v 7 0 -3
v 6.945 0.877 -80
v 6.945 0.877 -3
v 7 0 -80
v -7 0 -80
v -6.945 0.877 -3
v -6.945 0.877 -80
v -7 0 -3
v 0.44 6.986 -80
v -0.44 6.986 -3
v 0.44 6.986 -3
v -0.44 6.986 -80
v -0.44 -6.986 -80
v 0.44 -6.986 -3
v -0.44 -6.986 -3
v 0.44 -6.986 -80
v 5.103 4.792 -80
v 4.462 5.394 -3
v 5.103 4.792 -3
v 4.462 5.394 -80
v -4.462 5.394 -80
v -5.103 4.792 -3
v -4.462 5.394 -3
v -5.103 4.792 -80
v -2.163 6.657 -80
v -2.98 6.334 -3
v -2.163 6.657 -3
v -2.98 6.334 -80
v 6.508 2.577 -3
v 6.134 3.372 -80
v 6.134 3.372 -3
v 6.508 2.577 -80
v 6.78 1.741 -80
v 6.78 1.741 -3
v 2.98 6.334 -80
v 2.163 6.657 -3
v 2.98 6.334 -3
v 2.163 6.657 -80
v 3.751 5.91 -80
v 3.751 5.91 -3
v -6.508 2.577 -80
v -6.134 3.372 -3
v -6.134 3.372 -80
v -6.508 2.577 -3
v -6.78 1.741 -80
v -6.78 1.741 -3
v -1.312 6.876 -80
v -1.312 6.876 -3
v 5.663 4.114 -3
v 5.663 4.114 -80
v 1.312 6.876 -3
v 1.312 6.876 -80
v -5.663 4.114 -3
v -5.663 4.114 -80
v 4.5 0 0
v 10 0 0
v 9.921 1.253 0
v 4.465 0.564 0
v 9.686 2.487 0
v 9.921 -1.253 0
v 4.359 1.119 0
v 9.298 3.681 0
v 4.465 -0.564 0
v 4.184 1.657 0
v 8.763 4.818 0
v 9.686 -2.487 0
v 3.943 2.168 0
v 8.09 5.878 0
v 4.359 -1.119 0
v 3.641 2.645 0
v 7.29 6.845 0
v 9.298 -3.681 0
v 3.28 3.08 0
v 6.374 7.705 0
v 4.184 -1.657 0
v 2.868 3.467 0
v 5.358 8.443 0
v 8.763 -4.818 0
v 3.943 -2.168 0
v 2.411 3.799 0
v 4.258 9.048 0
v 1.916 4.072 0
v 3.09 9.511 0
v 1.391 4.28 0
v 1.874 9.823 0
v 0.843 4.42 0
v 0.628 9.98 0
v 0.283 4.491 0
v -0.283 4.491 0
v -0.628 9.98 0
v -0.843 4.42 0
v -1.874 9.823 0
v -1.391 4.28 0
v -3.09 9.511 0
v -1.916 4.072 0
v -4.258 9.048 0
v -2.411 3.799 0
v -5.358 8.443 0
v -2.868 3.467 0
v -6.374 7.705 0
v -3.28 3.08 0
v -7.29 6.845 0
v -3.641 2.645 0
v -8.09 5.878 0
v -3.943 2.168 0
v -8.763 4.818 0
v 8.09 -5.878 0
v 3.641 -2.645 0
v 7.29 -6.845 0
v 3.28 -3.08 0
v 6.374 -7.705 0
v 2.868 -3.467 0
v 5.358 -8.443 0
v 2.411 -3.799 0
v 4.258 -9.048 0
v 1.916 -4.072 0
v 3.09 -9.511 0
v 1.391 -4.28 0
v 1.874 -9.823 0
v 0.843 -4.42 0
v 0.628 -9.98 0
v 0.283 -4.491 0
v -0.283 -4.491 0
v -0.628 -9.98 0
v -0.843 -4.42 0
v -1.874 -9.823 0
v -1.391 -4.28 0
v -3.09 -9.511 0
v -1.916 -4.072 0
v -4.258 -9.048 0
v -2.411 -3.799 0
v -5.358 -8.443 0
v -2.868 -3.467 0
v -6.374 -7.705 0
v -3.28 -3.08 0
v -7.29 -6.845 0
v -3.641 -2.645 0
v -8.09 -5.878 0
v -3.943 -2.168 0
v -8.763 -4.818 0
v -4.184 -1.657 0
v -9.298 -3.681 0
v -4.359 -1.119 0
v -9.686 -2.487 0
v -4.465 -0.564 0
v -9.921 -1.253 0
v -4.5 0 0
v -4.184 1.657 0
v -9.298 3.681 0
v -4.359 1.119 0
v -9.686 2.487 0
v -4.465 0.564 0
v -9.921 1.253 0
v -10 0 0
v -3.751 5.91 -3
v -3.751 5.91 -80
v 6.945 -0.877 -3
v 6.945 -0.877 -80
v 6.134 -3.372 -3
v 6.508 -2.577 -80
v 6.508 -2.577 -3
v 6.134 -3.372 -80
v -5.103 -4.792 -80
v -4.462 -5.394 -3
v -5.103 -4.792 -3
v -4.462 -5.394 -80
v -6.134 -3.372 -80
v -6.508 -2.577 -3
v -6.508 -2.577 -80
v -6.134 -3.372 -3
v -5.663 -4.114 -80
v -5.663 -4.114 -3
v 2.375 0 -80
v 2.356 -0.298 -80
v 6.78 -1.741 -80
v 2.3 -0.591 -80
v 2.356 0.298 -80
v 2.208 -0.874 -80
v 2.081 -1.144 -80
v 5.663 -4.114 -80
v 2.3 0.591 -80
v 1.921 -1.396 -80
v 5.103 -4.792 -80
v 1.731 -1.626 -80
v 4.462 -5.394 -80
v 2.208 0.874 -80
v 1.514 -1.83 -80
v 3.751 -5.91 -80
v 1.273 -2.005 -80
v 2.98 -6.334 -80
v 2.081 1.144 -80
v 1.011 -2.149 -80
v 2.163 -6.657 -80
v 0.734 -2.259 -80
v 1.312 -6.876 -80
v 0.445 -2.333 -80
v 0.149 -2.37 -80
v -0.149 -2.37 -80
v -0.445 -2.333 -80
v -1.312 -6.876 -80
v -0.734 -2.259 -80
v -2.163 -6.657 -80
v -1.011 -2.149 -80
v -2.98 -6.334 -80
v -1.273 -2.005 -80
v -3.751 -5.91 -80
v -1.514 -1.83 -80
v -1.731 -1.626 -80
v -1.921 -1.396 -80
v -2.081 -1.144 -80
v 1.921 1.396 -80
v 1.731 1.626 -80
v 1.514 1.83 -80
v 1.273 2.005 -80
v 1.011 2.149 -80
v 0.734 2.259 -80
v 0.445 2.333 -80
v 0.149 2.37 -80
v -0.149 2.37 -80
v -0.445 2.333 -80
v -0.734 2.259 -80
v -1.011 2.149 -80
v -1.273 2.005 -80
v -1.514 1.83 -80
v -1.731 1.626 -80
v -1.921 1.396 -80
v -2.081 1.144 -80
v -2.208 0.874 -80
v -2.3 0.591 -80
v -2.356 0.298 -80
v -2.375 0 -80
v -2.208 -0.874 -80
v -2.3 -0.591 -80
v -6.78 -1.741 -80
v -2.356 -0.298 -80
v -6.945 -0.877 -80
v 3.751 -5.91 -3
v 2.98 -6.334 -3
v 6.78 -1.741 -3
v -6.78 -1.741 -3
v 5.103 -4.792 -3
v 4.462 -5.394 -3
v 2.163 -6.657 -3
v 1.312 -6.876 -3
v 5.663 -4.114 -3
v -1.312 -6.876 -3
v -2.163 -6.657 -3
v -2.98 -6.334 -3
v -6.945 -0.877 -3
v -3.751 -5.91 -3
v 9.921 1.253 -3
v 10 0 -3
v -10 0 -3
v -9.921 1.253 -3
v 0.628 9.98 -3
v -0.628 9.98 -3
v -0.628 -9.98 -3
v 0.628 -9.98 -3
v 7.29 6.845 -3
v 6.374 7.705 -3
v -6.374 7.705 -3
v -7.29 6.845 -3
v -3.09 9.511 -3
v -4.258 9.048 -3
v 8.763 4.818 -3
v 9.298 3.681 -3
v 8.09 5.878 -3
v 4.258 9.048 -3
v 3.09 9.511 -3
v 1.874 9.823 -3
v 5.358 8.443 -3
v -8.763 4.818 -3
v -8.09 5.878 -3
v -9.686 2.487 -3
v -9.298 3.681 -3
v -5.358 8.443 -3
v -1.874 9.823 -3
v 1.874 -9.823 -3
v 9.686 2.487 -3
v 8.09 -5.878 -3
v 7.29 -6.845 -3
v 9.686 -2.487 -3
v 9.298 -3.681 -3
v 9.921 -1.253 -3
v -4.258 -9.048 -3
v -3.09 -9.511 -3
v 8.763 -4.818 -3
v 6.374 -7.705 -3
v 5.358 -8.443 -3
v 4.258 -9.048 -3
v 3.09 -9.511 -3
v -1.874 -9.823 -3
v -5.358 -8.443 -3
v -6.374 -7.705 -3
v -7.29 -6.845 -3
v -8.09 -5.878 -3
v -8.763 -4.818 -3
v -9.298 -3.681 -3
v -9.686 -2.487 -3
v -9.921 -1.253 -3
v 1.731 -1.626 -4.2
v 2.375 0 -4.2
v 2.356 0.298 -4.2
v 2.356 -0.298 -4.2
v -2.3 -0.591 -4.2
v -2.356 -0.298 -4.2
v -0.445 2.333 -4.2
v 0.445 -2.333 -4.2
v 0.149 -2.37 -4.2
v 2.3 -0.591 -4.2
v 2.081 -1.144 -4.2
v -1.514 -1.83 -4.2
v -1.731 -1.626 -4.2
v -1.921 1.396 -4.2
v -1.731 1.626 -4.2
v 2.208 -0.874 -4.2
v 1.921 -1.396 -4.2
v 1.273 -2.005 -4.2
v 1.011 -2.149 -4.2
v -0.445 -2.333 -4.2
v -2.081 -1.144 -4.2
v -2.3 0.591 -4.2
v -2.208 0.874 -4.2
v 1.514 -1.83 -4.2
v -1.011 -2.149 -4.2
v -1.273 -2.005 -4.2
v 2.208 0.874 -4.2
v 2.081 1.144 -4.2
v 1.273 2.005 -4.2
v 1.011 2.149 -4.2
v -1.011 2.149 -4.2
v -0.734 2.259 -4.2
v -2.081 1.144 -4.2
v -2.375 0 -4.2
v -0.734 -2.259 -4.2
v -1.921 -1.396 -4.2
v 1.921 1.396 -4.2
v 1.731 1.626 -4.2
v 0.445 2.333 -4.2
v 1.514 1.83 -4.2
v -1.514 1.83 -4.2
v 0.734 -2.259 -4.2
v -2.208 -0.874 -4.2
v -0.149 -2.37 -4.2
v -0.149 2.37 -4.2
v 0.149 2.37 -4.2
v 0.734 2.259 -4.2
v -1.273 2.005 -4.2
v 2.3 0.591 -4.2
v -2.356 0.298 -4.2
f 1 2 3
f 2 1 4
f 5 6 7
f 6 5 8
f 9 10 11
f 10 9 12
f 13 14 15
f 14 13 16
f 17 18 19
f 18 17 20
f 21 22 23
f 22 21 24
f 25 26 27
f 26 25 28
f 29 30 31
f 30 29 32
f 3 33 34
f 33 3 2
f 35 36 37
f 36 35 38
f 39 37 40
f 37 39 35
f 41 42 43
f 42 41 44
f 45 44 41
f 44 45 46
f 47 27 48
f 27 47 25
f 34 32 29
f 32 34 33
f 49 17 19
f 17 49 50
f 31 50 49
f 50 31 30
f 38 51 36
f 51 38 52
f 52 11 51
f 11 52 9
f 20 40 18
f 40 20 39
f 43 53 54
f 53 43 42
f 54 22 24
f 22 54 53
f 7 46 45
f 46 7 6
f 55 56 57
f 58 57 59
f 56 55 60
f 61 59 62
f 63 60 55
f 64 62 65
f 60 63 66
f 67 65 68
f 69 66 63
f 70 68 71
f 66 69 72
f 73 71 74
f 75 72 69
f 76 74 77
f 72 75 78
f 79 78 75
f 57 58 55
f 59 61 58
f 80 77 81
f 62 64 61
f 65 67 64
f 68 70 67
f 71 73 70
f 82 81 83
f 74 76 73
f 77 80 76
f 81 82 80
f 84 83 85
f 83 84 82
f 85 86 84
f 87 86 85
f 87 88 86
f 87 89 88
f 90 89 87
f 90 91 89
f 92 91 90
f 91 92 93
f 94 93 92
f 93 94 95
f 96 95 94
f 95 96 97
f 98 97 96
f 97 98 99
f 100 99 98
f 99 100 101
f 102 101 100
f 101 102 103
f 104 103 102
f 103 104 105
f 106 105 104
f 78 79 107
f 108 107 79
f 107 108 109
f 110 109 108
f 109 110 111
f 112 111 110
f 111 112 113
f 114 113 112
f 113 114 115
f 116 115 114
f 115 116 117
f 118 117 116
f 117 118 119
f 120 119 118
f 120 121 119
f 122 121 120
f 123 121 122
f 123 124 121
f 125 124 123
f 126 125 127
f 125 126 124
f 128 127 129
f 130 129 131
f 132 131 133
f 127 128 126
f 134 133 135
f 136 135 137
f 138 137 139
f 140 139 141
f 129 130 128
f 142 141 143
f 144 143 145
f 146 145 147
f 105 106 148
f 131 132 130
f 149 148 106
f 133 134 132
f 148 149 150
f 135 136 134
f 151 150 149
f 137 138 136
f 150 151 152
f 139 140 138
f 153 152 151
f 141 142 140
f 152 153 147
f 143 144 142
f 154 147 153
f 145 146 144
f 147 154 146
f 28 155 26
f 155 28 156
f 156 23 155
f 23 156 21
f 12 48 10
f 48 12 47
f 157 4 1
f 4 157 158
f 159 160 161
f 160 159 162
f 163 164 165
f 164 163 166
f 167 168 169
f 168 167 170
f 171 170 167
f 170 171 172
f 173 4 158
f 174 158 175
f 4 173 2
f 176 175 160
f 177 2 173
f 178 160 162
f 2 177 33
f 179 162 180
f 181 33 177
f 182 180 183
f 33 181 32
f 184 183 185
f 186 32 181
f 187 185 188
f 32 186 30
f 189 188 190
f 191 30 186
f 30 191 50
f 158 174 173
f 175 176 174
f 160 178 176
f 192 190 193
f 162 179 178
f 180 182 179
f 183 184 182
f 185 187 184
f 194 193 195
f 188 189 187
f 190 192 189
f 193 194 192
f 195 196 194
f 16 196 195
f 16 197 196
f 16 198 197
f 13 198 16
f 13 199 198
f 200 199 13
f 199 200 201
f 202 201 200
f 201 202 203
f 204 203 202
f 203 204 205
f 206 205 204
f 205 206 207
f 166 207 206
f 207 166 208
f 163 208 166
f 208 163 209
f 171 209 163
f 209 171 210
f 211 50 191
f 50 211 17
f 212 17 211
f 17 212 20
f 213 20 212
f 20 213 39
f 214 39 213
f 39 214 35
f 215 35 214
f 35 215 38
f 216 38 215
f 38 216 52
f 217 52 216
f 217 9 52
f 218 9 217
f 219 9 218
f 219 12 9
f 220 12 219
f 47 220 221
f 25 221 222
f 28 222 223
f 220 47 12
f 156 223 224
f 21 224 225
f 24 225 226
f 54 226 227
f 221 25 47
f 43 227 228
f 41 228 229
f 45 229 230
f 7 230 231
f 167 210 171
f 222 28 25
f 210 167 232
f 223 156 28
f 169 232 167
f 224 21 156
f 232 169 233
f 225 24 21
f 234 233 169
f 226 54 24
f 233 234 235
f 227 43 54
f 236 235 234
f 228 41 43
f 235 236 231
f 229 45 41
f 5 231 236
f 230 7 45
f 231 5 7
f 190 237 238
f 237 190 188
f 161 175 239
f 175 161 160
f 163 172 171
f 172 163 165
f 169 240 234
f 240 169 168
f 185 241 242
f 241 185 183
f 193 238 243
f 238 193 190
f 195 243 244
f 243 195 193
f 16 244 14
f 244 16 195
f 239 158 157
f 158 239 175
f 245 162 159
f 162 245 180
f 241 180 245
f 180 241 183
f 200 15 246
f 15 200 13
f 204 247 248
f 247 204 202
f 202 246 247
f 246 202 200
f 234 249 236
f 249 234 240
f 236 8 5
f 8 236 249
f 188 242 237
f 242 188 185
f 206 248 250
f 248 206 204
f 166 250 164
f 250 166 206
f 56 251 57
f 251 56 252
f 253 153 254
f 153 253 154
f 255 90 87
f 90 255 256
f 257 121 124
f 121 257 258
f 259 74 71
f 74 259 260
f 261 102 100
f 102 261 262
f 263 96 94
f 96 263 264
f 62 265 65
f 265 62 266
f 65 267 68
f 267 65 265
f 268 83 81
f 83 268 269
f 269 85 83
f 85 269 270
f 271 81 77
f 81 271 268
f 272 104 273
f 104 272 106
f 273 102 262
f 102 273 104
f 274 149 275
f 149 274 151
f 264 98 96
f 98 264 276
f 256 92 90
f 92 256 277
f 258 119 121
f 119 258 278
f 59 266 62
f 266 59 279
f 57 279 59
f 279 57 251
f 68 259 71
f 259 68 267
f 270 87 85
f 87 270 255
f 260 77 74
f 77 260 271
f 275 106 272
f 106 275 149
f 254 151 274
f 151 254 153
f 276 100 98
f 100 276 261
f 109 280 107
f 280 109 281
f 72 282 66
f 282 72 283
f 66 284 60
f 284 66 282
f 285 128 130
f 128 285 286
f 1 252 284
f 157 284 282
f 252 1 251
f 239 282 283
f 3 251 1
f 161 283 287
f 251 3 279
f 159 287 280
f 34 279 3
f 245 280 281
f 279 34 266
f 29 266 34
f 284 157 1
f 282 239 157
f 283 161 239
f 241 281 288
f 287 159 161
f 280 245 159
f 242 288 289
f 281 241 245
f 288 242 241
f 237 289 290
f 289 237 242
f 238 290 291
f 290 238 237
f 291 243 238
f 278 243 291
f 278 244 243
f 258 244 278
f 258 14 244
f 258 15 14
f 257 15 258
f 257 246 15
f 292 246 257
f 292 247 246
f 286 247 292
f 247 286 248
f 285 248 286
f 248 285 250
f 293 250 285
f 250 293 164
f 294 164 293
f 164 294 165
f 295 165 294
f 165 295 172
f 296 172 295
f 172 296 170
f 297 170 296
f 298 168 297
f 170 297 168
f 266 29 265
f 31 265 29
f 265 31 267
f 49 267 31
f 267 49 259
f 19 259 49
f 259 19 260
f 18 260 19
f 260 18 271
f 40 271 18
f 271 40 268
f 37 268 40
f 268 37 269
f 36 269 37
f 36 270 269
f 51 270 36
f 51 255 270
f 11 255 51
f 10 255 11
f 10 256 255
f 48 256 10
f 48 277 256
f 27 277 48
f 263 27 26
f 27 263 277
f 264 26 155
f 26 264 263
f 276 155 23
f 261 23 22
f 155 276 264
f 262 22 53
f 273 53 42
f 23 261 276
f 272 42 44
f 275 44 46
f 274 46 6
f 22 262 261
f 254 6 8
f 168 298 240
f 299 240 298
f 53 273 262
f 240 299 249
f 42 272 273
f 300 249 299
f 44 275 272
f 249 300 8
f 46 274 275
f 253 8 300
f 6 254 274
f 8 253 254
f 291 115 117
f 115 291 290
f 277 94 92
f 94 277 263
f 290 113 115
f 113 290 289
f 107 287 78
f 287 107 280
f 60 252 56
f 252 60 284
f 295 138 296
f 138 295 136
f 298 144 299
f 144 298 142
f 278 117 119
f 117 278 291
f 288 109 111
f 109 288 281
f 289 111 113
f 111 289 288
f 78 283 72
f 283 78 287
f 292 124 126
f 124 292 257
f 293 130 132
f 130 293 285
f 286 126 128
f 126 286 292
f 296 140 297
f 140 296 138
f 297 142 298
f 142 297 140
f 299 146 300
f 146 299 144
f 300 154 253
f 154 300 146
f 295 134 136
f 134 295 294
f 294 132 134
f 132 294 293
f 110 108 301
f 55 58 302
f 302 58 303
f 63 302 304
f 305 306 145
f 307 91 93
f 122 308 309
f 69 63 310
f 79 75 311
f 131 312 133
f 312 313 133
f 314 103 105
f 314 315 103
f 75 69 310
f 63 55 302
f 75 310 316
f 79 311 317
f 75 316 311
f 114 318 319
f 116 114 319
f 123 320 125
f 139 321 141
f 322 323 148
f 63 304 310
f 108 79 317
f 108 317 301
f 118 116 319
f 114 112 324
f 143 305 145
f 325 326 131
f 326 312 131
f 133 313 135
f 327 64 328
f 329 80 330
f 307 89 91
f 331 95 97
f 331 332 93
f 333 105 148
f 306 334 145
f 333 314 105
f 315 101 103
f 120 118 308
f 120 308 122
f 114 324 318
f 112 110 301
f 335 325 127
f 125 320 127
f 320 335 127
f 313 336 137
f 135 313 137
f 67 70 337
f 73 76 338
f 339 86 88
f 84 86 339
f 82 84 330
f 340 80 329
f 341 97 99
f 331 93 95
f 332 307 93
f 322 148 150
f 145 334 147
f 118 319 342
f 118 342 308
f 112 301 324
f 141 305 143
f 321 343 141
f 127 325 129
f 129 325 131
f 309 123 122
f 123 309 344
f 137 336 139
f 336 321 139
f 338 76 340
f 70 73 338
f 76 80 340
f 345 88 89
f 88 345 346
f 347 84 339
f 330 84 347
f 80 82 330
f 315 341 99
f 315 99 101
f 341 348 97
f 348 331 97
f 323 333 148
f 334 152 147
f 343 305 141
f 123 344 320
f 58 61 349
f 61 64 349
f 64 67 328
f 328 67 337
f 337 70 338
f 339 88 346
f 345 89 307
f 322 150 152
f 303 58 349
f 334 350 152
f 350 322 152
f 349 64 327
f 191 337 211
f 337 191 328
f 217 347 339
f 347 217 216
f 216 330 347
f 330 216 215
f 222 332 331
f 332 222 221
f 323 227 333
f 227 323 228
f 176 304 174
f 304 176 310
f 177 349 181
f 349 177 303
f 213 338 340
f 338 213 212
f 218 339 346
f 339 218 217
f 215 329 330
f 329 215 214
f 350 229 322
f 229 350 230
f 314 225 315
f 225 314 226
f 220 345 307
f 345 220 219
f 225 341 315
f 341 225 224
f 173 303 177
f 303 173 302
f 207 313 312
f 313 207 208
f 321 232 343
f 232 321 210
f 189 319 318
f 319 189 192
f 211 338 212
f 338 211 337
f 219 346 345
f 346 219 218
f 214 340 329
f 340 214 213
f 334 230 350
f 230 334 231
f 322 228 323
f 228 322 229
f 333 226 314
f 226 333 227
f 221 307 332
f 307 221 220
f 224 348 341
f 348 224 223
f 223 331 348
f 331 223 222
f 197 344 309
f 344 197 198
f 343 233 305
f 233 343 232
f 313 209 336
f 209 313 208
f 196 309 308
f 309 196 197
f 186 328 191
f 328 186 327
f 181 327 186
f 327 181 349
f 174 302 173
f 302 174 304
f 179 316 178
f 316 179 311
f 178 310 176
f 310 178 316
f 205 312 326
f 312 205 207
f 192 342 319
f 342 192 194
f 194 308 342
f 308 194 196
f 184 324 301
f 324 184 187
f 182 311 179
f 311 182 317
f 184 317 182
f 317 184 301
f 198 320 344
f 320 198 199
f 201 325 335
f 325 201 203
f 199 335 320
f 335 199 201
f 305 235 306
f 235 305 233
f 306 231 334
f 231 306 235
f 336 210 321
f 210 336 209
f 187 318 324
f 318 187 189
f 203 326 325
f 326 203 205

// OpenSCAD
$fn = 50;


difference() {
	union() {
		translate(v = [0, 0, -80.0000000000]) {
			cylinder(h = 80, r = 7.0000000000);
		}
		translate(v = [0, 0, -3.0000000000]) {
			cylinder(h = 3, r = 10.0000000000);
		}
	}
	union() {
		translate(v = [0, 0, 0]) {
			rotate(a = [0, 0, 0]) {
				difference() {
					union() {
						#translate(v = [0, 0, -80.0000000000]) {
							cylinder(h = 80, r = 2.2500000000);
						}
						#translate(v = [0, 0, -4.2000000000]) {
							cylinder(h = 4.2000000000, r = 7.0000000000, r1 = 2.3750000000, r2 = 4.5000000000);
						}
						#translate(v = [0, 0, -80.0000000000]) {
							cylinder(h = 80, r = 2.3750000000);
						}
						#translate(v = [0, 0, -80.0000000000]) {
							cylinder(h = 80, r = 2.2500000000);
						}
					}
					union();
				}
			}
		}
	}
}
